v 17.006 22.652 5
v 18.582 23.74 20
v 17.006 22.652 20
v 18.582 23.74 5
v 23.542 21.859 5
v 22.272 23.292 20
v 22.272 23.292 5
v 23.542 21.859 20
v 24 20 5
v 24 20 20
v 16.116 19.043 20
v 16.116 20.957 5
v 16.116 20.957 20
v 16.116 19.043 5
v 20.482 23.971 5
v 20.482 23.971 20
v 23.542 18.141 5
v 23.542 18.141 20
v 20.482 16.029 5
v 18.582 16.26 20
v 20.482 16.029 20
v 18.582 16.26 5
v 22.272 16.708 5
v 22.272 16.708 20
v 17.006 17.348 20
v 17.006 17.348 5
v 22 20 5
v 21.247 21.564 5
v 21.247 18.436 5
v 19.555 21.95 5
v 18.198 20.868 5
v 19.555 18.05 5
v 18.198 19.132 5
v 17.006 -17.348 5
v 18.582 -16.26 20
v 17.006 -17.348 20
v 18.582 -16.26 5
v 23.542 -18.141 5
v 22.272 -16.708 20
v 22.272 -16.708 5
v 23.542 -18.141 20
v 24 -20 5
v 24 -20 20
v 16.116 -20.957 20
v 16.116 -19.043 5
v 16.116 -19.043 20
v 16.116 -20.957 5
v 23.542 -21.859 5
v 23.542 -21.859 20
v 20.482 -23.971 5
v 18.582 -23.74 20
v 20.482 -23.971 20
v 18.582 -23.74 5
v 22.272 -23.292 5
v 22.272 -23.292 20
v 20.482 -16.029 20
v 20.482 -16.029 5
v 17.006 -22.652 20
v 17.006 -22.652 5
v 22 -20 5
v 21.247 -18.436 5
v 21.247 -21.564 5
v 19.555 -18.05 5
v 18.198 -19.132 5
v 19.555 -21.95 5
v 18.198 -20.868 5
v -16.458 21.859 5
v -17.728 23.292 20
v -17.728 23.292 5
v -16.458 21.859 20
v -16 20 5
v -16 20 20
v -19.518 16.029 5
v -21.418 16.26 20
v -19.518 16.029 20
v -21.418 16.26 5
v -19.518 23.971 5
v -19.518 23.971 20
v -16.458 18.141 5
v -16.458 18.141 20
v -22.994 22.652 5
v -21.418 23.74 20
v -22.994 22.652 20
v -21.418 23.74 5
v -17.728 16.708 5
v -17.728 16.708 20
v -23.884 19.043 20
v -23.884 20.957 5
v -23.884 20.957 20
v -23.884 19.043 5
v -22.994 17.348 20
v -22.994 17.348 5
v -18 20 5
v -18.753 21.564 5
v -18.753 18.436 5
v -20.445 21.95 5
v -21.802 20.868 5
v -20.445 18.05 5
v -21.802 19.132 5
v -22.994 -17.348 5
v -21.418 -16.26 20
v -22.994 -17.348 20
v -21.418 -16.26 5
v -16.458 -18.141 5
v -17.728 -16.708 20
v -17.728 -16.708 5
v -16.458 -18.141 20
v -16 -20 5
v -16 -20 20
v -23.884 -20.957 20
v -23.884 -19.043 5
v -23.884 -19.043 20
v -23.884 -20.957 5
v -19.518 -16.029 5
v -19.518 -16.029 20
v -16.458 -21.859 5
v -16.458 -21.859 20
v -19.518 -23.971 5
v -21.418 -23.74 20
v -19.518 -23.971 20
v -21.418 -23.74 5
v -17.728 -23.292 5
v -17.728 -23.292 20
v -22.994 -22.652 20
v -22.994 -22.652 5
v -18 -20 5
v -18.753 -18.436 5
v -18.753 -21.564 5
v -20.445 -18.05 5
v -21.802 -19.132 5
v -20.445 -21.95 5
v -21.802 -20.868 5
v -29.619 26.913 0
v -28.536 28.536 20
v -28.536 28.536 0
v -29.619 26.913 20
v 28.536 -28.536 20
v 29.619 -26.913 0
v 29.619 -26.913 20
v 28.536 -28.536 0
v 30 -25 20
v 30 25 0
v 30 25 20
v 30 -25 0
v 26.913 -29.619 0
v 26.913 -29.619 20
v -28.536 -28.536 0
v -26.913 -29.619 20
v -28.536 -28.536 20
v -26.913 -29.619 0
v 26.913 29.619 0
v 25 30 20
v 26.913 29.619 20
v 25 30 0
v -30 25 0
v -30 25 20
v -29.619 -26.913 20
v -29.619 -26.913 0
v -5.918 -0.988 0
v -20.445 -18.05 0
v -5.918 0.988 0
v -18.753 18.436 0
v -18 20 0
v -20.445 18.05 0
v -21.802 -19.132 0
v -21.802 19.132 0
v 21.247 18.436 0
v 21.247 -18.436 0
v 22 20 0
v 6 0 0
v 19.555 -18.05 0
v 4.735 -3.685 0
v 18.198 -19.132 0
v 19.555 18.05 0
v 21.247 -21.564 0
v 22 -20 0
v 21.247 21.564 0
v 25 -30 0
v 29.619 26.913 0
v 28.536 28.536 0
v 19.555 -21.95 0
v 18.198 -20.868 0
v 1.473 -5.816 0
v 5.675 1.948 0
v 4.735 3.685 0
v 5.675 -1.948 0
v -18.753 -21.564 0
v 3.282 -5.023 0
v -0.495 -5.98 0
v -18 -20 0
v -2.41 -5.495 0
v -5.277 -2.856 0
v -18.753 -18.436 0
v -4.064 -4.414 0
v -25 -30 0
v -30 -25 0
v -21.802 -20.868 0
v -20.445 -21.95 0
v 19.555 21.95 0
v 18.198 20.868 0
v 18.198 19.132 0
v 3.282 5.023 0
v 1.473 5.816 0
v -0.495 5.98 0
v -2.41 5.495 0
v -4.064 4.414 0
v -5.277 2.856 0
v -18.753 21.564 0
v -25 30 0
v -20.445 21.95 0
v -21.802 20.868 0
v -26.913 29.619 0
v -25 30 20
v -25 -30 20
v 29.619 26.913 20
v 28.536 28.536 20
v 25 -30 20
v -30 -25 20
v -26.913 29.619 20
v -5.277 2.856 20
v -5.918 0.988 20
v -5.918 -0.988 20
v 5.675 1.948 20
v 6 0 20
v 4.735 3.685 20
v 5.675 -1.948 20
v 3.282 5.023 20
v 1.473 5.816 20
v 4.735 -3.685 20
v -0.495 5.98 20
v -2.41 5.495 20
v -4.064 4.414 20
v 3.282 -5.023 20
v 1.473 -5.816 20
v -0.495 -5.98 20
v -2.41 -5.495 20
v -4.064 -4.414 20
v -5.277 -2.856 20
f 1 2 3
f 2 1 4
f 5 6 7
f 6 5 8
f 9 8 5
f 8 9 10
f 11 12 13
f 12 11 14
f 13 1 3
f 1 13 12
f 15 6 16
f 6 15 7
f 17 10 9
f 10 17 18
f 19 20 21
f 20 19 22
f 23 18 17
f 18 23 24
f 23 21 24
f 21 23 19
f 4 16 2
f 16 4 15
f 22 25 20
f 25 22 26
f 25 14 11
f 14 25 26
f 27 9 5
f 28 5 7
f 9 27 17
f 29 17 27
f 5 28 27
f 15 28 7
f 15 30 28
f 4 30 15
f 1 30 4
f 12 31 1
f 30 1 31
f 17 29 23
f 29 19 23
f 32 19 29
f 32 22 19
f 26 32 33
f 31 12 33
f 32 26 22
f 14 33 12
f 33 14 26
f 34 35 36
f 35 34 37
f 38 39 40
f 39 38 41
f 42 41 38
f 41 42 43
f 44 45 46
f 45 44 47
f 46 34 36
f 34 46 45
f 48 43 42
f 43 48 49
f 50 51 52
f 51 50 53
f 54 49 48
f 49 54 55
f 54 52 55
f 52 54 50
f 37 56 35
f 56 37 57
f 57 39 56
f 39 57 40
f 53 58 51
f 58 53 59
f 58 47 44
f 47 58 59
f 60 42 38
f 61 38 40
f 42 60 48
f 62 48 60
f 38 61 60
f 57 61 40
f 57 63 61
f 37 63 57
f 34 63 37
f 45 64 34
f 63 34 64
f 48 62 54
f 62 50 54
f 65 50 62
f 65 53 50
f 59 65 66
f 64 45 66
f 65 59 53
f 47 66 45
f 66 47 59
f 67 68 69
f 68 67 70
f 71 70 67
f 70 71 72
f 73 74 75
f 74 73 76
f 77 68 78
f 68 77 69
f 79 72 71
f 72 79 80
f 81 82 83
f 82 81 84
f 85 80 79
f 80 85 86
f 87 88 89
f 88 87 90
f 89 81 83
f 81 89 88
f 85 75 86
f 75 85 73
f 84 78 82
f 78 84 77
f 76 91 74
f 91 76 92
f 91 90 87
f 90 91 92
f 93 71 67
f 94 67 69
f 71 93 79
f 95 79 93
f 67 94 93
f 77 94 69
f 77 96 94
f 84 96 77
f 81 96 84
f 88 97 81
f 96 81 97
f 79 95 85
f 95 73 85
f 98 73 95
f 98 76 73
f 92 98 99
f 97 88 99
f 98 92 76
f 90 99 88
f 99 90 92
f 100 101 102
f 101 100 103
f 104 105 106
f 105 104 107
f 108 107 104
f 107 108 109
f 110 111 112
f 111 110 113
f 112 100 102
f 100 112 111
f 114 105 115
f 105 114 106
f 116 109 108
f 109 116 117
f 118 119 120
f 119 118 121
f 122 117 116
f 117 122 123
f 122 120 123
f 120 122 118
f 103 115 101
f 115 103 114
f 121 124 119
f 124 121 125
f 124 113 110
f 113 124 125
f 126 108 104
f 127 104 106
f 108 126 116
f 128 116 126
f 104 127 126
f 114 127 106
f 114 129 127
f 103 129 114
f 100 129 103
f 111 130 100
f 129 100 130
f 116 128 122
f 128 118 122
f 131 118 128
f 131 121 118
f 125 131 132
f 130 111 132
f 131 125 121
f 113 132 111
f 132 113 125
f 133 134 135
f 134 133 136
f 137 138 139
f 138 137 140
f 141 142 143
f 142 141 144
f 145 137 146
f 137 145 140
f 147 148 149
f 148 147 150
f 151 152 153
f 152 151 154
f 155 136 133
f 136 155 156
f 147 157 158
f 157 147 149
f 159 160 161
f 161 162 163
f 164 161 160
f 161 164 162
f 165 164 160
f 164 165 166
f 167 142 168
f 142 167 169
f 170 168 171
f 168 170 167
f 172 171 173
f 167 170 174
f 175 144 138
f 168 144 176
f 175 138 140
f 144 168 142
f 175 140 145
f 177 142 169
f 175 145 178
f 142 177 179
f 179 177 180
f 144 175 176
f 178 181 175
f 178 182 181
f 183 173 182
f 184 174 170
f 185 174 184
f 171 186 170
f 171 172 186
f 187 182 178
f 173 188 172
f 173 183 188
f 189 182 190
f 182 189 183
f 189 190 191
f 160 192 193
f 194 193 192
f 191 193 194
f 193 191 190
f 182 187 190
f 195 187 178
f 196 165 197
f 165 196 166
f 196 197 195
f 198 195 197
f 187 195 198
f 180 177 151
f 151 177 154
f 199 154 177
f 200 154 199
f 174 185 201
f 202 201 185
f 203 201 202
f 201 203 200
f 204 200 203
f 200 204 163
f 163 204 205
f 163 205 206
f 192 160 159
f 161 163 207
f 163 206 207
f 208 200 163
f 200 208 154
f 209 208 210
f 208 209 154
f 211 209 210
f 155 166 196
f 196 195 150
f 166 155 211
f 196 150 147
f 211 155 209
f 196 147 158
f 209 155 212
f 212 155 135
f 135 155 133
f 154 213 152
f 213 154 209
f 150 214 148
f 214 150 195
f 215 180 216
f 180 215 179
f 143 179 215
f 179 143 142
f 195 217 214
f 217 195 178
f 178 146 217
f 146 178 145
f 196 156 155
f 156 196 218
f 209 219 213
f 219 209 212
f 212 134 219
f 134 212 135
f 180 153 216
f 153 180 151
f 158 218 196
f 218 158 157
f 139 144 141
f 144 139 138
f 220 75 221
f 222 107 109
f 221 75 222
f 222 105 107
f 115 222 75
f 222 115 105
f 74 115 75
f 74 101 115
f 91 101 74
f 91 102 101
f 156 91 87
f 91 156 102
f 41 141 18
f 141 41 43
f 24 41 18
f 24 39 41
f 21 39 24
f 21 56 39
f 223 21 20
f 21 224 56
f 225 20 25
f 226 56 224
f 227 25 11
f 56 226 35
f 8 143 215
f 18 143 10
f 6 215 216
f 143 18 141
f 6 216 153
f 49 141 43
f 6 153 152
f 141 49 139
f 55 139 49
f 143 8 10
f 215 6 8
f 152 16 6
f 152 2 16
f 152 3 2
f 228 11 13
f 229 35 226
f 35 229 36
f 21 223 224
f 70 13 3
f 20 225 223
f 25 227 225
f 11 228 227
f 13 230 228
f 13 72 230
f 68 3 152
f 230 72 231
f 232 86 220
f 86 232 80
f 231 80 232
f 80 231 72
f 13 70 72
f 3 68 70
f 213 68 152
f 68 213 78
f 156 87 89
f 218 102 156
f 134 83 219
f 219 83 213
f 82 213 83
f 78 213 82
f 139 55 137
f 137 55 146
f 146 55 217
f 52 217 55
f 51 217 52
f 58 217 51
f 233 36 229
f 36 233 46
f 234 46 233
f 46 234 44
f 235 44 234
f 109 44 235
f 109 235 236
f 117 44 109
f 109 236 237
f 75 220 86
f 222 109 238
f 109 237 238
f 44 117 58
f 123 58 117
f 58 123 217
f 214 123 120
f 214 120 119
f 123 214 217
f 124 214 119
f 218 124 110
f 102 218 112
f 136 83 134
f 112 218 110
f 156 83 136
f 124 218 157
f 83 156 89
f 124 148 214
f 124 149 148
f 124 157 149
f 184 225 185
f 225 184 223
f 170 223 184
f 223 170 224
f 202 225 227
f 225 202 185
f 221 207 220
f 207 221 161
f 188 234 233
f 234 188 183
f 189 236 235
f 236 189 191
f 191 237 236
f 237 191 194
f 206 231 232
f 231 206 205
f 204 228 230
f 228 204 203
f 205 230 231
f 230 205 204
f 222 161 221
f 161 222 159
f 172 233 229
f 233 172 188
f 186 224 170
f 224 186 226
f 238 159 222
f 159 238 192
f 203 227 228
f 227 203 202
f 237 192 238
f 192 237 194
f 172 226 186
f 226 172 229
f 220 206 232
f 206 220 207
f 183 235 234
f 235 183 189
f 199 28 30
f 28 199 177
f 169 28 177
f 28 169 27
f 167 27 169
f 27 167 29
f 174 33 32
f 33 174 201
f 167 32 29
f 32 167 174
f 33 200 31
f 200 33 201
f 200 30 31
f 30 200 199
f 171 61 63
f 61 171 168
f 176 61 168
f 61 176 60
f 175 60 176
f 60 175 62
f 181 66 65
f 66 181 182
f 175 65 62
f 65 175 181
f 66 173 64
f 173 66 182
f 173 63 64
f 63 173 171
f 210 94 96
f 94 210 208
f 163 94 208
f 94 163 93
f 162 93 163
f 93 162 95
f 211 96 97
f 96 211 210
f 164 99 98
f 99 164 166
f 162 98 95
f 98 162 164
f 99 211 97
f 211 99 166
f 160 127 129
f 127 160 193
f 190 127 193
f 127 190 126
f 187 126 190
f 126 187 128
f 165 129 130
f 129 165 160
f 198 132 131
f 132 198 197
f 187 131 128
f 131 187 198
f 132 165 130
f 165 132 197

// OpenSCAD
difference(){
linear_extrude(20)
offset(5)
square([60-10,60-10],center=true);


    translate([0,0,-1])
    cylinder(d=12,h=25);


translate([20,20,-1])
cylinder(d=4,h=25);
translate([20,-20,-1])
cylinder(d=4,h=25);
translate([-20,20,-1])
cylinder(d=4,h=25);
translate([-20,-20,-1])
cylinder(d=4,h=25);

translate([0,0,1+5]){    
translate([20,20,-1])
cylinder(d=8,h=25);
translate([20,-20,-1])
cylinder(d=8,h=25);
translate([-20,20,-1])
cylinder(d=8,h=25);
translate([-20,-20,-1])
cylinder(d=8,h=25);
}
}
